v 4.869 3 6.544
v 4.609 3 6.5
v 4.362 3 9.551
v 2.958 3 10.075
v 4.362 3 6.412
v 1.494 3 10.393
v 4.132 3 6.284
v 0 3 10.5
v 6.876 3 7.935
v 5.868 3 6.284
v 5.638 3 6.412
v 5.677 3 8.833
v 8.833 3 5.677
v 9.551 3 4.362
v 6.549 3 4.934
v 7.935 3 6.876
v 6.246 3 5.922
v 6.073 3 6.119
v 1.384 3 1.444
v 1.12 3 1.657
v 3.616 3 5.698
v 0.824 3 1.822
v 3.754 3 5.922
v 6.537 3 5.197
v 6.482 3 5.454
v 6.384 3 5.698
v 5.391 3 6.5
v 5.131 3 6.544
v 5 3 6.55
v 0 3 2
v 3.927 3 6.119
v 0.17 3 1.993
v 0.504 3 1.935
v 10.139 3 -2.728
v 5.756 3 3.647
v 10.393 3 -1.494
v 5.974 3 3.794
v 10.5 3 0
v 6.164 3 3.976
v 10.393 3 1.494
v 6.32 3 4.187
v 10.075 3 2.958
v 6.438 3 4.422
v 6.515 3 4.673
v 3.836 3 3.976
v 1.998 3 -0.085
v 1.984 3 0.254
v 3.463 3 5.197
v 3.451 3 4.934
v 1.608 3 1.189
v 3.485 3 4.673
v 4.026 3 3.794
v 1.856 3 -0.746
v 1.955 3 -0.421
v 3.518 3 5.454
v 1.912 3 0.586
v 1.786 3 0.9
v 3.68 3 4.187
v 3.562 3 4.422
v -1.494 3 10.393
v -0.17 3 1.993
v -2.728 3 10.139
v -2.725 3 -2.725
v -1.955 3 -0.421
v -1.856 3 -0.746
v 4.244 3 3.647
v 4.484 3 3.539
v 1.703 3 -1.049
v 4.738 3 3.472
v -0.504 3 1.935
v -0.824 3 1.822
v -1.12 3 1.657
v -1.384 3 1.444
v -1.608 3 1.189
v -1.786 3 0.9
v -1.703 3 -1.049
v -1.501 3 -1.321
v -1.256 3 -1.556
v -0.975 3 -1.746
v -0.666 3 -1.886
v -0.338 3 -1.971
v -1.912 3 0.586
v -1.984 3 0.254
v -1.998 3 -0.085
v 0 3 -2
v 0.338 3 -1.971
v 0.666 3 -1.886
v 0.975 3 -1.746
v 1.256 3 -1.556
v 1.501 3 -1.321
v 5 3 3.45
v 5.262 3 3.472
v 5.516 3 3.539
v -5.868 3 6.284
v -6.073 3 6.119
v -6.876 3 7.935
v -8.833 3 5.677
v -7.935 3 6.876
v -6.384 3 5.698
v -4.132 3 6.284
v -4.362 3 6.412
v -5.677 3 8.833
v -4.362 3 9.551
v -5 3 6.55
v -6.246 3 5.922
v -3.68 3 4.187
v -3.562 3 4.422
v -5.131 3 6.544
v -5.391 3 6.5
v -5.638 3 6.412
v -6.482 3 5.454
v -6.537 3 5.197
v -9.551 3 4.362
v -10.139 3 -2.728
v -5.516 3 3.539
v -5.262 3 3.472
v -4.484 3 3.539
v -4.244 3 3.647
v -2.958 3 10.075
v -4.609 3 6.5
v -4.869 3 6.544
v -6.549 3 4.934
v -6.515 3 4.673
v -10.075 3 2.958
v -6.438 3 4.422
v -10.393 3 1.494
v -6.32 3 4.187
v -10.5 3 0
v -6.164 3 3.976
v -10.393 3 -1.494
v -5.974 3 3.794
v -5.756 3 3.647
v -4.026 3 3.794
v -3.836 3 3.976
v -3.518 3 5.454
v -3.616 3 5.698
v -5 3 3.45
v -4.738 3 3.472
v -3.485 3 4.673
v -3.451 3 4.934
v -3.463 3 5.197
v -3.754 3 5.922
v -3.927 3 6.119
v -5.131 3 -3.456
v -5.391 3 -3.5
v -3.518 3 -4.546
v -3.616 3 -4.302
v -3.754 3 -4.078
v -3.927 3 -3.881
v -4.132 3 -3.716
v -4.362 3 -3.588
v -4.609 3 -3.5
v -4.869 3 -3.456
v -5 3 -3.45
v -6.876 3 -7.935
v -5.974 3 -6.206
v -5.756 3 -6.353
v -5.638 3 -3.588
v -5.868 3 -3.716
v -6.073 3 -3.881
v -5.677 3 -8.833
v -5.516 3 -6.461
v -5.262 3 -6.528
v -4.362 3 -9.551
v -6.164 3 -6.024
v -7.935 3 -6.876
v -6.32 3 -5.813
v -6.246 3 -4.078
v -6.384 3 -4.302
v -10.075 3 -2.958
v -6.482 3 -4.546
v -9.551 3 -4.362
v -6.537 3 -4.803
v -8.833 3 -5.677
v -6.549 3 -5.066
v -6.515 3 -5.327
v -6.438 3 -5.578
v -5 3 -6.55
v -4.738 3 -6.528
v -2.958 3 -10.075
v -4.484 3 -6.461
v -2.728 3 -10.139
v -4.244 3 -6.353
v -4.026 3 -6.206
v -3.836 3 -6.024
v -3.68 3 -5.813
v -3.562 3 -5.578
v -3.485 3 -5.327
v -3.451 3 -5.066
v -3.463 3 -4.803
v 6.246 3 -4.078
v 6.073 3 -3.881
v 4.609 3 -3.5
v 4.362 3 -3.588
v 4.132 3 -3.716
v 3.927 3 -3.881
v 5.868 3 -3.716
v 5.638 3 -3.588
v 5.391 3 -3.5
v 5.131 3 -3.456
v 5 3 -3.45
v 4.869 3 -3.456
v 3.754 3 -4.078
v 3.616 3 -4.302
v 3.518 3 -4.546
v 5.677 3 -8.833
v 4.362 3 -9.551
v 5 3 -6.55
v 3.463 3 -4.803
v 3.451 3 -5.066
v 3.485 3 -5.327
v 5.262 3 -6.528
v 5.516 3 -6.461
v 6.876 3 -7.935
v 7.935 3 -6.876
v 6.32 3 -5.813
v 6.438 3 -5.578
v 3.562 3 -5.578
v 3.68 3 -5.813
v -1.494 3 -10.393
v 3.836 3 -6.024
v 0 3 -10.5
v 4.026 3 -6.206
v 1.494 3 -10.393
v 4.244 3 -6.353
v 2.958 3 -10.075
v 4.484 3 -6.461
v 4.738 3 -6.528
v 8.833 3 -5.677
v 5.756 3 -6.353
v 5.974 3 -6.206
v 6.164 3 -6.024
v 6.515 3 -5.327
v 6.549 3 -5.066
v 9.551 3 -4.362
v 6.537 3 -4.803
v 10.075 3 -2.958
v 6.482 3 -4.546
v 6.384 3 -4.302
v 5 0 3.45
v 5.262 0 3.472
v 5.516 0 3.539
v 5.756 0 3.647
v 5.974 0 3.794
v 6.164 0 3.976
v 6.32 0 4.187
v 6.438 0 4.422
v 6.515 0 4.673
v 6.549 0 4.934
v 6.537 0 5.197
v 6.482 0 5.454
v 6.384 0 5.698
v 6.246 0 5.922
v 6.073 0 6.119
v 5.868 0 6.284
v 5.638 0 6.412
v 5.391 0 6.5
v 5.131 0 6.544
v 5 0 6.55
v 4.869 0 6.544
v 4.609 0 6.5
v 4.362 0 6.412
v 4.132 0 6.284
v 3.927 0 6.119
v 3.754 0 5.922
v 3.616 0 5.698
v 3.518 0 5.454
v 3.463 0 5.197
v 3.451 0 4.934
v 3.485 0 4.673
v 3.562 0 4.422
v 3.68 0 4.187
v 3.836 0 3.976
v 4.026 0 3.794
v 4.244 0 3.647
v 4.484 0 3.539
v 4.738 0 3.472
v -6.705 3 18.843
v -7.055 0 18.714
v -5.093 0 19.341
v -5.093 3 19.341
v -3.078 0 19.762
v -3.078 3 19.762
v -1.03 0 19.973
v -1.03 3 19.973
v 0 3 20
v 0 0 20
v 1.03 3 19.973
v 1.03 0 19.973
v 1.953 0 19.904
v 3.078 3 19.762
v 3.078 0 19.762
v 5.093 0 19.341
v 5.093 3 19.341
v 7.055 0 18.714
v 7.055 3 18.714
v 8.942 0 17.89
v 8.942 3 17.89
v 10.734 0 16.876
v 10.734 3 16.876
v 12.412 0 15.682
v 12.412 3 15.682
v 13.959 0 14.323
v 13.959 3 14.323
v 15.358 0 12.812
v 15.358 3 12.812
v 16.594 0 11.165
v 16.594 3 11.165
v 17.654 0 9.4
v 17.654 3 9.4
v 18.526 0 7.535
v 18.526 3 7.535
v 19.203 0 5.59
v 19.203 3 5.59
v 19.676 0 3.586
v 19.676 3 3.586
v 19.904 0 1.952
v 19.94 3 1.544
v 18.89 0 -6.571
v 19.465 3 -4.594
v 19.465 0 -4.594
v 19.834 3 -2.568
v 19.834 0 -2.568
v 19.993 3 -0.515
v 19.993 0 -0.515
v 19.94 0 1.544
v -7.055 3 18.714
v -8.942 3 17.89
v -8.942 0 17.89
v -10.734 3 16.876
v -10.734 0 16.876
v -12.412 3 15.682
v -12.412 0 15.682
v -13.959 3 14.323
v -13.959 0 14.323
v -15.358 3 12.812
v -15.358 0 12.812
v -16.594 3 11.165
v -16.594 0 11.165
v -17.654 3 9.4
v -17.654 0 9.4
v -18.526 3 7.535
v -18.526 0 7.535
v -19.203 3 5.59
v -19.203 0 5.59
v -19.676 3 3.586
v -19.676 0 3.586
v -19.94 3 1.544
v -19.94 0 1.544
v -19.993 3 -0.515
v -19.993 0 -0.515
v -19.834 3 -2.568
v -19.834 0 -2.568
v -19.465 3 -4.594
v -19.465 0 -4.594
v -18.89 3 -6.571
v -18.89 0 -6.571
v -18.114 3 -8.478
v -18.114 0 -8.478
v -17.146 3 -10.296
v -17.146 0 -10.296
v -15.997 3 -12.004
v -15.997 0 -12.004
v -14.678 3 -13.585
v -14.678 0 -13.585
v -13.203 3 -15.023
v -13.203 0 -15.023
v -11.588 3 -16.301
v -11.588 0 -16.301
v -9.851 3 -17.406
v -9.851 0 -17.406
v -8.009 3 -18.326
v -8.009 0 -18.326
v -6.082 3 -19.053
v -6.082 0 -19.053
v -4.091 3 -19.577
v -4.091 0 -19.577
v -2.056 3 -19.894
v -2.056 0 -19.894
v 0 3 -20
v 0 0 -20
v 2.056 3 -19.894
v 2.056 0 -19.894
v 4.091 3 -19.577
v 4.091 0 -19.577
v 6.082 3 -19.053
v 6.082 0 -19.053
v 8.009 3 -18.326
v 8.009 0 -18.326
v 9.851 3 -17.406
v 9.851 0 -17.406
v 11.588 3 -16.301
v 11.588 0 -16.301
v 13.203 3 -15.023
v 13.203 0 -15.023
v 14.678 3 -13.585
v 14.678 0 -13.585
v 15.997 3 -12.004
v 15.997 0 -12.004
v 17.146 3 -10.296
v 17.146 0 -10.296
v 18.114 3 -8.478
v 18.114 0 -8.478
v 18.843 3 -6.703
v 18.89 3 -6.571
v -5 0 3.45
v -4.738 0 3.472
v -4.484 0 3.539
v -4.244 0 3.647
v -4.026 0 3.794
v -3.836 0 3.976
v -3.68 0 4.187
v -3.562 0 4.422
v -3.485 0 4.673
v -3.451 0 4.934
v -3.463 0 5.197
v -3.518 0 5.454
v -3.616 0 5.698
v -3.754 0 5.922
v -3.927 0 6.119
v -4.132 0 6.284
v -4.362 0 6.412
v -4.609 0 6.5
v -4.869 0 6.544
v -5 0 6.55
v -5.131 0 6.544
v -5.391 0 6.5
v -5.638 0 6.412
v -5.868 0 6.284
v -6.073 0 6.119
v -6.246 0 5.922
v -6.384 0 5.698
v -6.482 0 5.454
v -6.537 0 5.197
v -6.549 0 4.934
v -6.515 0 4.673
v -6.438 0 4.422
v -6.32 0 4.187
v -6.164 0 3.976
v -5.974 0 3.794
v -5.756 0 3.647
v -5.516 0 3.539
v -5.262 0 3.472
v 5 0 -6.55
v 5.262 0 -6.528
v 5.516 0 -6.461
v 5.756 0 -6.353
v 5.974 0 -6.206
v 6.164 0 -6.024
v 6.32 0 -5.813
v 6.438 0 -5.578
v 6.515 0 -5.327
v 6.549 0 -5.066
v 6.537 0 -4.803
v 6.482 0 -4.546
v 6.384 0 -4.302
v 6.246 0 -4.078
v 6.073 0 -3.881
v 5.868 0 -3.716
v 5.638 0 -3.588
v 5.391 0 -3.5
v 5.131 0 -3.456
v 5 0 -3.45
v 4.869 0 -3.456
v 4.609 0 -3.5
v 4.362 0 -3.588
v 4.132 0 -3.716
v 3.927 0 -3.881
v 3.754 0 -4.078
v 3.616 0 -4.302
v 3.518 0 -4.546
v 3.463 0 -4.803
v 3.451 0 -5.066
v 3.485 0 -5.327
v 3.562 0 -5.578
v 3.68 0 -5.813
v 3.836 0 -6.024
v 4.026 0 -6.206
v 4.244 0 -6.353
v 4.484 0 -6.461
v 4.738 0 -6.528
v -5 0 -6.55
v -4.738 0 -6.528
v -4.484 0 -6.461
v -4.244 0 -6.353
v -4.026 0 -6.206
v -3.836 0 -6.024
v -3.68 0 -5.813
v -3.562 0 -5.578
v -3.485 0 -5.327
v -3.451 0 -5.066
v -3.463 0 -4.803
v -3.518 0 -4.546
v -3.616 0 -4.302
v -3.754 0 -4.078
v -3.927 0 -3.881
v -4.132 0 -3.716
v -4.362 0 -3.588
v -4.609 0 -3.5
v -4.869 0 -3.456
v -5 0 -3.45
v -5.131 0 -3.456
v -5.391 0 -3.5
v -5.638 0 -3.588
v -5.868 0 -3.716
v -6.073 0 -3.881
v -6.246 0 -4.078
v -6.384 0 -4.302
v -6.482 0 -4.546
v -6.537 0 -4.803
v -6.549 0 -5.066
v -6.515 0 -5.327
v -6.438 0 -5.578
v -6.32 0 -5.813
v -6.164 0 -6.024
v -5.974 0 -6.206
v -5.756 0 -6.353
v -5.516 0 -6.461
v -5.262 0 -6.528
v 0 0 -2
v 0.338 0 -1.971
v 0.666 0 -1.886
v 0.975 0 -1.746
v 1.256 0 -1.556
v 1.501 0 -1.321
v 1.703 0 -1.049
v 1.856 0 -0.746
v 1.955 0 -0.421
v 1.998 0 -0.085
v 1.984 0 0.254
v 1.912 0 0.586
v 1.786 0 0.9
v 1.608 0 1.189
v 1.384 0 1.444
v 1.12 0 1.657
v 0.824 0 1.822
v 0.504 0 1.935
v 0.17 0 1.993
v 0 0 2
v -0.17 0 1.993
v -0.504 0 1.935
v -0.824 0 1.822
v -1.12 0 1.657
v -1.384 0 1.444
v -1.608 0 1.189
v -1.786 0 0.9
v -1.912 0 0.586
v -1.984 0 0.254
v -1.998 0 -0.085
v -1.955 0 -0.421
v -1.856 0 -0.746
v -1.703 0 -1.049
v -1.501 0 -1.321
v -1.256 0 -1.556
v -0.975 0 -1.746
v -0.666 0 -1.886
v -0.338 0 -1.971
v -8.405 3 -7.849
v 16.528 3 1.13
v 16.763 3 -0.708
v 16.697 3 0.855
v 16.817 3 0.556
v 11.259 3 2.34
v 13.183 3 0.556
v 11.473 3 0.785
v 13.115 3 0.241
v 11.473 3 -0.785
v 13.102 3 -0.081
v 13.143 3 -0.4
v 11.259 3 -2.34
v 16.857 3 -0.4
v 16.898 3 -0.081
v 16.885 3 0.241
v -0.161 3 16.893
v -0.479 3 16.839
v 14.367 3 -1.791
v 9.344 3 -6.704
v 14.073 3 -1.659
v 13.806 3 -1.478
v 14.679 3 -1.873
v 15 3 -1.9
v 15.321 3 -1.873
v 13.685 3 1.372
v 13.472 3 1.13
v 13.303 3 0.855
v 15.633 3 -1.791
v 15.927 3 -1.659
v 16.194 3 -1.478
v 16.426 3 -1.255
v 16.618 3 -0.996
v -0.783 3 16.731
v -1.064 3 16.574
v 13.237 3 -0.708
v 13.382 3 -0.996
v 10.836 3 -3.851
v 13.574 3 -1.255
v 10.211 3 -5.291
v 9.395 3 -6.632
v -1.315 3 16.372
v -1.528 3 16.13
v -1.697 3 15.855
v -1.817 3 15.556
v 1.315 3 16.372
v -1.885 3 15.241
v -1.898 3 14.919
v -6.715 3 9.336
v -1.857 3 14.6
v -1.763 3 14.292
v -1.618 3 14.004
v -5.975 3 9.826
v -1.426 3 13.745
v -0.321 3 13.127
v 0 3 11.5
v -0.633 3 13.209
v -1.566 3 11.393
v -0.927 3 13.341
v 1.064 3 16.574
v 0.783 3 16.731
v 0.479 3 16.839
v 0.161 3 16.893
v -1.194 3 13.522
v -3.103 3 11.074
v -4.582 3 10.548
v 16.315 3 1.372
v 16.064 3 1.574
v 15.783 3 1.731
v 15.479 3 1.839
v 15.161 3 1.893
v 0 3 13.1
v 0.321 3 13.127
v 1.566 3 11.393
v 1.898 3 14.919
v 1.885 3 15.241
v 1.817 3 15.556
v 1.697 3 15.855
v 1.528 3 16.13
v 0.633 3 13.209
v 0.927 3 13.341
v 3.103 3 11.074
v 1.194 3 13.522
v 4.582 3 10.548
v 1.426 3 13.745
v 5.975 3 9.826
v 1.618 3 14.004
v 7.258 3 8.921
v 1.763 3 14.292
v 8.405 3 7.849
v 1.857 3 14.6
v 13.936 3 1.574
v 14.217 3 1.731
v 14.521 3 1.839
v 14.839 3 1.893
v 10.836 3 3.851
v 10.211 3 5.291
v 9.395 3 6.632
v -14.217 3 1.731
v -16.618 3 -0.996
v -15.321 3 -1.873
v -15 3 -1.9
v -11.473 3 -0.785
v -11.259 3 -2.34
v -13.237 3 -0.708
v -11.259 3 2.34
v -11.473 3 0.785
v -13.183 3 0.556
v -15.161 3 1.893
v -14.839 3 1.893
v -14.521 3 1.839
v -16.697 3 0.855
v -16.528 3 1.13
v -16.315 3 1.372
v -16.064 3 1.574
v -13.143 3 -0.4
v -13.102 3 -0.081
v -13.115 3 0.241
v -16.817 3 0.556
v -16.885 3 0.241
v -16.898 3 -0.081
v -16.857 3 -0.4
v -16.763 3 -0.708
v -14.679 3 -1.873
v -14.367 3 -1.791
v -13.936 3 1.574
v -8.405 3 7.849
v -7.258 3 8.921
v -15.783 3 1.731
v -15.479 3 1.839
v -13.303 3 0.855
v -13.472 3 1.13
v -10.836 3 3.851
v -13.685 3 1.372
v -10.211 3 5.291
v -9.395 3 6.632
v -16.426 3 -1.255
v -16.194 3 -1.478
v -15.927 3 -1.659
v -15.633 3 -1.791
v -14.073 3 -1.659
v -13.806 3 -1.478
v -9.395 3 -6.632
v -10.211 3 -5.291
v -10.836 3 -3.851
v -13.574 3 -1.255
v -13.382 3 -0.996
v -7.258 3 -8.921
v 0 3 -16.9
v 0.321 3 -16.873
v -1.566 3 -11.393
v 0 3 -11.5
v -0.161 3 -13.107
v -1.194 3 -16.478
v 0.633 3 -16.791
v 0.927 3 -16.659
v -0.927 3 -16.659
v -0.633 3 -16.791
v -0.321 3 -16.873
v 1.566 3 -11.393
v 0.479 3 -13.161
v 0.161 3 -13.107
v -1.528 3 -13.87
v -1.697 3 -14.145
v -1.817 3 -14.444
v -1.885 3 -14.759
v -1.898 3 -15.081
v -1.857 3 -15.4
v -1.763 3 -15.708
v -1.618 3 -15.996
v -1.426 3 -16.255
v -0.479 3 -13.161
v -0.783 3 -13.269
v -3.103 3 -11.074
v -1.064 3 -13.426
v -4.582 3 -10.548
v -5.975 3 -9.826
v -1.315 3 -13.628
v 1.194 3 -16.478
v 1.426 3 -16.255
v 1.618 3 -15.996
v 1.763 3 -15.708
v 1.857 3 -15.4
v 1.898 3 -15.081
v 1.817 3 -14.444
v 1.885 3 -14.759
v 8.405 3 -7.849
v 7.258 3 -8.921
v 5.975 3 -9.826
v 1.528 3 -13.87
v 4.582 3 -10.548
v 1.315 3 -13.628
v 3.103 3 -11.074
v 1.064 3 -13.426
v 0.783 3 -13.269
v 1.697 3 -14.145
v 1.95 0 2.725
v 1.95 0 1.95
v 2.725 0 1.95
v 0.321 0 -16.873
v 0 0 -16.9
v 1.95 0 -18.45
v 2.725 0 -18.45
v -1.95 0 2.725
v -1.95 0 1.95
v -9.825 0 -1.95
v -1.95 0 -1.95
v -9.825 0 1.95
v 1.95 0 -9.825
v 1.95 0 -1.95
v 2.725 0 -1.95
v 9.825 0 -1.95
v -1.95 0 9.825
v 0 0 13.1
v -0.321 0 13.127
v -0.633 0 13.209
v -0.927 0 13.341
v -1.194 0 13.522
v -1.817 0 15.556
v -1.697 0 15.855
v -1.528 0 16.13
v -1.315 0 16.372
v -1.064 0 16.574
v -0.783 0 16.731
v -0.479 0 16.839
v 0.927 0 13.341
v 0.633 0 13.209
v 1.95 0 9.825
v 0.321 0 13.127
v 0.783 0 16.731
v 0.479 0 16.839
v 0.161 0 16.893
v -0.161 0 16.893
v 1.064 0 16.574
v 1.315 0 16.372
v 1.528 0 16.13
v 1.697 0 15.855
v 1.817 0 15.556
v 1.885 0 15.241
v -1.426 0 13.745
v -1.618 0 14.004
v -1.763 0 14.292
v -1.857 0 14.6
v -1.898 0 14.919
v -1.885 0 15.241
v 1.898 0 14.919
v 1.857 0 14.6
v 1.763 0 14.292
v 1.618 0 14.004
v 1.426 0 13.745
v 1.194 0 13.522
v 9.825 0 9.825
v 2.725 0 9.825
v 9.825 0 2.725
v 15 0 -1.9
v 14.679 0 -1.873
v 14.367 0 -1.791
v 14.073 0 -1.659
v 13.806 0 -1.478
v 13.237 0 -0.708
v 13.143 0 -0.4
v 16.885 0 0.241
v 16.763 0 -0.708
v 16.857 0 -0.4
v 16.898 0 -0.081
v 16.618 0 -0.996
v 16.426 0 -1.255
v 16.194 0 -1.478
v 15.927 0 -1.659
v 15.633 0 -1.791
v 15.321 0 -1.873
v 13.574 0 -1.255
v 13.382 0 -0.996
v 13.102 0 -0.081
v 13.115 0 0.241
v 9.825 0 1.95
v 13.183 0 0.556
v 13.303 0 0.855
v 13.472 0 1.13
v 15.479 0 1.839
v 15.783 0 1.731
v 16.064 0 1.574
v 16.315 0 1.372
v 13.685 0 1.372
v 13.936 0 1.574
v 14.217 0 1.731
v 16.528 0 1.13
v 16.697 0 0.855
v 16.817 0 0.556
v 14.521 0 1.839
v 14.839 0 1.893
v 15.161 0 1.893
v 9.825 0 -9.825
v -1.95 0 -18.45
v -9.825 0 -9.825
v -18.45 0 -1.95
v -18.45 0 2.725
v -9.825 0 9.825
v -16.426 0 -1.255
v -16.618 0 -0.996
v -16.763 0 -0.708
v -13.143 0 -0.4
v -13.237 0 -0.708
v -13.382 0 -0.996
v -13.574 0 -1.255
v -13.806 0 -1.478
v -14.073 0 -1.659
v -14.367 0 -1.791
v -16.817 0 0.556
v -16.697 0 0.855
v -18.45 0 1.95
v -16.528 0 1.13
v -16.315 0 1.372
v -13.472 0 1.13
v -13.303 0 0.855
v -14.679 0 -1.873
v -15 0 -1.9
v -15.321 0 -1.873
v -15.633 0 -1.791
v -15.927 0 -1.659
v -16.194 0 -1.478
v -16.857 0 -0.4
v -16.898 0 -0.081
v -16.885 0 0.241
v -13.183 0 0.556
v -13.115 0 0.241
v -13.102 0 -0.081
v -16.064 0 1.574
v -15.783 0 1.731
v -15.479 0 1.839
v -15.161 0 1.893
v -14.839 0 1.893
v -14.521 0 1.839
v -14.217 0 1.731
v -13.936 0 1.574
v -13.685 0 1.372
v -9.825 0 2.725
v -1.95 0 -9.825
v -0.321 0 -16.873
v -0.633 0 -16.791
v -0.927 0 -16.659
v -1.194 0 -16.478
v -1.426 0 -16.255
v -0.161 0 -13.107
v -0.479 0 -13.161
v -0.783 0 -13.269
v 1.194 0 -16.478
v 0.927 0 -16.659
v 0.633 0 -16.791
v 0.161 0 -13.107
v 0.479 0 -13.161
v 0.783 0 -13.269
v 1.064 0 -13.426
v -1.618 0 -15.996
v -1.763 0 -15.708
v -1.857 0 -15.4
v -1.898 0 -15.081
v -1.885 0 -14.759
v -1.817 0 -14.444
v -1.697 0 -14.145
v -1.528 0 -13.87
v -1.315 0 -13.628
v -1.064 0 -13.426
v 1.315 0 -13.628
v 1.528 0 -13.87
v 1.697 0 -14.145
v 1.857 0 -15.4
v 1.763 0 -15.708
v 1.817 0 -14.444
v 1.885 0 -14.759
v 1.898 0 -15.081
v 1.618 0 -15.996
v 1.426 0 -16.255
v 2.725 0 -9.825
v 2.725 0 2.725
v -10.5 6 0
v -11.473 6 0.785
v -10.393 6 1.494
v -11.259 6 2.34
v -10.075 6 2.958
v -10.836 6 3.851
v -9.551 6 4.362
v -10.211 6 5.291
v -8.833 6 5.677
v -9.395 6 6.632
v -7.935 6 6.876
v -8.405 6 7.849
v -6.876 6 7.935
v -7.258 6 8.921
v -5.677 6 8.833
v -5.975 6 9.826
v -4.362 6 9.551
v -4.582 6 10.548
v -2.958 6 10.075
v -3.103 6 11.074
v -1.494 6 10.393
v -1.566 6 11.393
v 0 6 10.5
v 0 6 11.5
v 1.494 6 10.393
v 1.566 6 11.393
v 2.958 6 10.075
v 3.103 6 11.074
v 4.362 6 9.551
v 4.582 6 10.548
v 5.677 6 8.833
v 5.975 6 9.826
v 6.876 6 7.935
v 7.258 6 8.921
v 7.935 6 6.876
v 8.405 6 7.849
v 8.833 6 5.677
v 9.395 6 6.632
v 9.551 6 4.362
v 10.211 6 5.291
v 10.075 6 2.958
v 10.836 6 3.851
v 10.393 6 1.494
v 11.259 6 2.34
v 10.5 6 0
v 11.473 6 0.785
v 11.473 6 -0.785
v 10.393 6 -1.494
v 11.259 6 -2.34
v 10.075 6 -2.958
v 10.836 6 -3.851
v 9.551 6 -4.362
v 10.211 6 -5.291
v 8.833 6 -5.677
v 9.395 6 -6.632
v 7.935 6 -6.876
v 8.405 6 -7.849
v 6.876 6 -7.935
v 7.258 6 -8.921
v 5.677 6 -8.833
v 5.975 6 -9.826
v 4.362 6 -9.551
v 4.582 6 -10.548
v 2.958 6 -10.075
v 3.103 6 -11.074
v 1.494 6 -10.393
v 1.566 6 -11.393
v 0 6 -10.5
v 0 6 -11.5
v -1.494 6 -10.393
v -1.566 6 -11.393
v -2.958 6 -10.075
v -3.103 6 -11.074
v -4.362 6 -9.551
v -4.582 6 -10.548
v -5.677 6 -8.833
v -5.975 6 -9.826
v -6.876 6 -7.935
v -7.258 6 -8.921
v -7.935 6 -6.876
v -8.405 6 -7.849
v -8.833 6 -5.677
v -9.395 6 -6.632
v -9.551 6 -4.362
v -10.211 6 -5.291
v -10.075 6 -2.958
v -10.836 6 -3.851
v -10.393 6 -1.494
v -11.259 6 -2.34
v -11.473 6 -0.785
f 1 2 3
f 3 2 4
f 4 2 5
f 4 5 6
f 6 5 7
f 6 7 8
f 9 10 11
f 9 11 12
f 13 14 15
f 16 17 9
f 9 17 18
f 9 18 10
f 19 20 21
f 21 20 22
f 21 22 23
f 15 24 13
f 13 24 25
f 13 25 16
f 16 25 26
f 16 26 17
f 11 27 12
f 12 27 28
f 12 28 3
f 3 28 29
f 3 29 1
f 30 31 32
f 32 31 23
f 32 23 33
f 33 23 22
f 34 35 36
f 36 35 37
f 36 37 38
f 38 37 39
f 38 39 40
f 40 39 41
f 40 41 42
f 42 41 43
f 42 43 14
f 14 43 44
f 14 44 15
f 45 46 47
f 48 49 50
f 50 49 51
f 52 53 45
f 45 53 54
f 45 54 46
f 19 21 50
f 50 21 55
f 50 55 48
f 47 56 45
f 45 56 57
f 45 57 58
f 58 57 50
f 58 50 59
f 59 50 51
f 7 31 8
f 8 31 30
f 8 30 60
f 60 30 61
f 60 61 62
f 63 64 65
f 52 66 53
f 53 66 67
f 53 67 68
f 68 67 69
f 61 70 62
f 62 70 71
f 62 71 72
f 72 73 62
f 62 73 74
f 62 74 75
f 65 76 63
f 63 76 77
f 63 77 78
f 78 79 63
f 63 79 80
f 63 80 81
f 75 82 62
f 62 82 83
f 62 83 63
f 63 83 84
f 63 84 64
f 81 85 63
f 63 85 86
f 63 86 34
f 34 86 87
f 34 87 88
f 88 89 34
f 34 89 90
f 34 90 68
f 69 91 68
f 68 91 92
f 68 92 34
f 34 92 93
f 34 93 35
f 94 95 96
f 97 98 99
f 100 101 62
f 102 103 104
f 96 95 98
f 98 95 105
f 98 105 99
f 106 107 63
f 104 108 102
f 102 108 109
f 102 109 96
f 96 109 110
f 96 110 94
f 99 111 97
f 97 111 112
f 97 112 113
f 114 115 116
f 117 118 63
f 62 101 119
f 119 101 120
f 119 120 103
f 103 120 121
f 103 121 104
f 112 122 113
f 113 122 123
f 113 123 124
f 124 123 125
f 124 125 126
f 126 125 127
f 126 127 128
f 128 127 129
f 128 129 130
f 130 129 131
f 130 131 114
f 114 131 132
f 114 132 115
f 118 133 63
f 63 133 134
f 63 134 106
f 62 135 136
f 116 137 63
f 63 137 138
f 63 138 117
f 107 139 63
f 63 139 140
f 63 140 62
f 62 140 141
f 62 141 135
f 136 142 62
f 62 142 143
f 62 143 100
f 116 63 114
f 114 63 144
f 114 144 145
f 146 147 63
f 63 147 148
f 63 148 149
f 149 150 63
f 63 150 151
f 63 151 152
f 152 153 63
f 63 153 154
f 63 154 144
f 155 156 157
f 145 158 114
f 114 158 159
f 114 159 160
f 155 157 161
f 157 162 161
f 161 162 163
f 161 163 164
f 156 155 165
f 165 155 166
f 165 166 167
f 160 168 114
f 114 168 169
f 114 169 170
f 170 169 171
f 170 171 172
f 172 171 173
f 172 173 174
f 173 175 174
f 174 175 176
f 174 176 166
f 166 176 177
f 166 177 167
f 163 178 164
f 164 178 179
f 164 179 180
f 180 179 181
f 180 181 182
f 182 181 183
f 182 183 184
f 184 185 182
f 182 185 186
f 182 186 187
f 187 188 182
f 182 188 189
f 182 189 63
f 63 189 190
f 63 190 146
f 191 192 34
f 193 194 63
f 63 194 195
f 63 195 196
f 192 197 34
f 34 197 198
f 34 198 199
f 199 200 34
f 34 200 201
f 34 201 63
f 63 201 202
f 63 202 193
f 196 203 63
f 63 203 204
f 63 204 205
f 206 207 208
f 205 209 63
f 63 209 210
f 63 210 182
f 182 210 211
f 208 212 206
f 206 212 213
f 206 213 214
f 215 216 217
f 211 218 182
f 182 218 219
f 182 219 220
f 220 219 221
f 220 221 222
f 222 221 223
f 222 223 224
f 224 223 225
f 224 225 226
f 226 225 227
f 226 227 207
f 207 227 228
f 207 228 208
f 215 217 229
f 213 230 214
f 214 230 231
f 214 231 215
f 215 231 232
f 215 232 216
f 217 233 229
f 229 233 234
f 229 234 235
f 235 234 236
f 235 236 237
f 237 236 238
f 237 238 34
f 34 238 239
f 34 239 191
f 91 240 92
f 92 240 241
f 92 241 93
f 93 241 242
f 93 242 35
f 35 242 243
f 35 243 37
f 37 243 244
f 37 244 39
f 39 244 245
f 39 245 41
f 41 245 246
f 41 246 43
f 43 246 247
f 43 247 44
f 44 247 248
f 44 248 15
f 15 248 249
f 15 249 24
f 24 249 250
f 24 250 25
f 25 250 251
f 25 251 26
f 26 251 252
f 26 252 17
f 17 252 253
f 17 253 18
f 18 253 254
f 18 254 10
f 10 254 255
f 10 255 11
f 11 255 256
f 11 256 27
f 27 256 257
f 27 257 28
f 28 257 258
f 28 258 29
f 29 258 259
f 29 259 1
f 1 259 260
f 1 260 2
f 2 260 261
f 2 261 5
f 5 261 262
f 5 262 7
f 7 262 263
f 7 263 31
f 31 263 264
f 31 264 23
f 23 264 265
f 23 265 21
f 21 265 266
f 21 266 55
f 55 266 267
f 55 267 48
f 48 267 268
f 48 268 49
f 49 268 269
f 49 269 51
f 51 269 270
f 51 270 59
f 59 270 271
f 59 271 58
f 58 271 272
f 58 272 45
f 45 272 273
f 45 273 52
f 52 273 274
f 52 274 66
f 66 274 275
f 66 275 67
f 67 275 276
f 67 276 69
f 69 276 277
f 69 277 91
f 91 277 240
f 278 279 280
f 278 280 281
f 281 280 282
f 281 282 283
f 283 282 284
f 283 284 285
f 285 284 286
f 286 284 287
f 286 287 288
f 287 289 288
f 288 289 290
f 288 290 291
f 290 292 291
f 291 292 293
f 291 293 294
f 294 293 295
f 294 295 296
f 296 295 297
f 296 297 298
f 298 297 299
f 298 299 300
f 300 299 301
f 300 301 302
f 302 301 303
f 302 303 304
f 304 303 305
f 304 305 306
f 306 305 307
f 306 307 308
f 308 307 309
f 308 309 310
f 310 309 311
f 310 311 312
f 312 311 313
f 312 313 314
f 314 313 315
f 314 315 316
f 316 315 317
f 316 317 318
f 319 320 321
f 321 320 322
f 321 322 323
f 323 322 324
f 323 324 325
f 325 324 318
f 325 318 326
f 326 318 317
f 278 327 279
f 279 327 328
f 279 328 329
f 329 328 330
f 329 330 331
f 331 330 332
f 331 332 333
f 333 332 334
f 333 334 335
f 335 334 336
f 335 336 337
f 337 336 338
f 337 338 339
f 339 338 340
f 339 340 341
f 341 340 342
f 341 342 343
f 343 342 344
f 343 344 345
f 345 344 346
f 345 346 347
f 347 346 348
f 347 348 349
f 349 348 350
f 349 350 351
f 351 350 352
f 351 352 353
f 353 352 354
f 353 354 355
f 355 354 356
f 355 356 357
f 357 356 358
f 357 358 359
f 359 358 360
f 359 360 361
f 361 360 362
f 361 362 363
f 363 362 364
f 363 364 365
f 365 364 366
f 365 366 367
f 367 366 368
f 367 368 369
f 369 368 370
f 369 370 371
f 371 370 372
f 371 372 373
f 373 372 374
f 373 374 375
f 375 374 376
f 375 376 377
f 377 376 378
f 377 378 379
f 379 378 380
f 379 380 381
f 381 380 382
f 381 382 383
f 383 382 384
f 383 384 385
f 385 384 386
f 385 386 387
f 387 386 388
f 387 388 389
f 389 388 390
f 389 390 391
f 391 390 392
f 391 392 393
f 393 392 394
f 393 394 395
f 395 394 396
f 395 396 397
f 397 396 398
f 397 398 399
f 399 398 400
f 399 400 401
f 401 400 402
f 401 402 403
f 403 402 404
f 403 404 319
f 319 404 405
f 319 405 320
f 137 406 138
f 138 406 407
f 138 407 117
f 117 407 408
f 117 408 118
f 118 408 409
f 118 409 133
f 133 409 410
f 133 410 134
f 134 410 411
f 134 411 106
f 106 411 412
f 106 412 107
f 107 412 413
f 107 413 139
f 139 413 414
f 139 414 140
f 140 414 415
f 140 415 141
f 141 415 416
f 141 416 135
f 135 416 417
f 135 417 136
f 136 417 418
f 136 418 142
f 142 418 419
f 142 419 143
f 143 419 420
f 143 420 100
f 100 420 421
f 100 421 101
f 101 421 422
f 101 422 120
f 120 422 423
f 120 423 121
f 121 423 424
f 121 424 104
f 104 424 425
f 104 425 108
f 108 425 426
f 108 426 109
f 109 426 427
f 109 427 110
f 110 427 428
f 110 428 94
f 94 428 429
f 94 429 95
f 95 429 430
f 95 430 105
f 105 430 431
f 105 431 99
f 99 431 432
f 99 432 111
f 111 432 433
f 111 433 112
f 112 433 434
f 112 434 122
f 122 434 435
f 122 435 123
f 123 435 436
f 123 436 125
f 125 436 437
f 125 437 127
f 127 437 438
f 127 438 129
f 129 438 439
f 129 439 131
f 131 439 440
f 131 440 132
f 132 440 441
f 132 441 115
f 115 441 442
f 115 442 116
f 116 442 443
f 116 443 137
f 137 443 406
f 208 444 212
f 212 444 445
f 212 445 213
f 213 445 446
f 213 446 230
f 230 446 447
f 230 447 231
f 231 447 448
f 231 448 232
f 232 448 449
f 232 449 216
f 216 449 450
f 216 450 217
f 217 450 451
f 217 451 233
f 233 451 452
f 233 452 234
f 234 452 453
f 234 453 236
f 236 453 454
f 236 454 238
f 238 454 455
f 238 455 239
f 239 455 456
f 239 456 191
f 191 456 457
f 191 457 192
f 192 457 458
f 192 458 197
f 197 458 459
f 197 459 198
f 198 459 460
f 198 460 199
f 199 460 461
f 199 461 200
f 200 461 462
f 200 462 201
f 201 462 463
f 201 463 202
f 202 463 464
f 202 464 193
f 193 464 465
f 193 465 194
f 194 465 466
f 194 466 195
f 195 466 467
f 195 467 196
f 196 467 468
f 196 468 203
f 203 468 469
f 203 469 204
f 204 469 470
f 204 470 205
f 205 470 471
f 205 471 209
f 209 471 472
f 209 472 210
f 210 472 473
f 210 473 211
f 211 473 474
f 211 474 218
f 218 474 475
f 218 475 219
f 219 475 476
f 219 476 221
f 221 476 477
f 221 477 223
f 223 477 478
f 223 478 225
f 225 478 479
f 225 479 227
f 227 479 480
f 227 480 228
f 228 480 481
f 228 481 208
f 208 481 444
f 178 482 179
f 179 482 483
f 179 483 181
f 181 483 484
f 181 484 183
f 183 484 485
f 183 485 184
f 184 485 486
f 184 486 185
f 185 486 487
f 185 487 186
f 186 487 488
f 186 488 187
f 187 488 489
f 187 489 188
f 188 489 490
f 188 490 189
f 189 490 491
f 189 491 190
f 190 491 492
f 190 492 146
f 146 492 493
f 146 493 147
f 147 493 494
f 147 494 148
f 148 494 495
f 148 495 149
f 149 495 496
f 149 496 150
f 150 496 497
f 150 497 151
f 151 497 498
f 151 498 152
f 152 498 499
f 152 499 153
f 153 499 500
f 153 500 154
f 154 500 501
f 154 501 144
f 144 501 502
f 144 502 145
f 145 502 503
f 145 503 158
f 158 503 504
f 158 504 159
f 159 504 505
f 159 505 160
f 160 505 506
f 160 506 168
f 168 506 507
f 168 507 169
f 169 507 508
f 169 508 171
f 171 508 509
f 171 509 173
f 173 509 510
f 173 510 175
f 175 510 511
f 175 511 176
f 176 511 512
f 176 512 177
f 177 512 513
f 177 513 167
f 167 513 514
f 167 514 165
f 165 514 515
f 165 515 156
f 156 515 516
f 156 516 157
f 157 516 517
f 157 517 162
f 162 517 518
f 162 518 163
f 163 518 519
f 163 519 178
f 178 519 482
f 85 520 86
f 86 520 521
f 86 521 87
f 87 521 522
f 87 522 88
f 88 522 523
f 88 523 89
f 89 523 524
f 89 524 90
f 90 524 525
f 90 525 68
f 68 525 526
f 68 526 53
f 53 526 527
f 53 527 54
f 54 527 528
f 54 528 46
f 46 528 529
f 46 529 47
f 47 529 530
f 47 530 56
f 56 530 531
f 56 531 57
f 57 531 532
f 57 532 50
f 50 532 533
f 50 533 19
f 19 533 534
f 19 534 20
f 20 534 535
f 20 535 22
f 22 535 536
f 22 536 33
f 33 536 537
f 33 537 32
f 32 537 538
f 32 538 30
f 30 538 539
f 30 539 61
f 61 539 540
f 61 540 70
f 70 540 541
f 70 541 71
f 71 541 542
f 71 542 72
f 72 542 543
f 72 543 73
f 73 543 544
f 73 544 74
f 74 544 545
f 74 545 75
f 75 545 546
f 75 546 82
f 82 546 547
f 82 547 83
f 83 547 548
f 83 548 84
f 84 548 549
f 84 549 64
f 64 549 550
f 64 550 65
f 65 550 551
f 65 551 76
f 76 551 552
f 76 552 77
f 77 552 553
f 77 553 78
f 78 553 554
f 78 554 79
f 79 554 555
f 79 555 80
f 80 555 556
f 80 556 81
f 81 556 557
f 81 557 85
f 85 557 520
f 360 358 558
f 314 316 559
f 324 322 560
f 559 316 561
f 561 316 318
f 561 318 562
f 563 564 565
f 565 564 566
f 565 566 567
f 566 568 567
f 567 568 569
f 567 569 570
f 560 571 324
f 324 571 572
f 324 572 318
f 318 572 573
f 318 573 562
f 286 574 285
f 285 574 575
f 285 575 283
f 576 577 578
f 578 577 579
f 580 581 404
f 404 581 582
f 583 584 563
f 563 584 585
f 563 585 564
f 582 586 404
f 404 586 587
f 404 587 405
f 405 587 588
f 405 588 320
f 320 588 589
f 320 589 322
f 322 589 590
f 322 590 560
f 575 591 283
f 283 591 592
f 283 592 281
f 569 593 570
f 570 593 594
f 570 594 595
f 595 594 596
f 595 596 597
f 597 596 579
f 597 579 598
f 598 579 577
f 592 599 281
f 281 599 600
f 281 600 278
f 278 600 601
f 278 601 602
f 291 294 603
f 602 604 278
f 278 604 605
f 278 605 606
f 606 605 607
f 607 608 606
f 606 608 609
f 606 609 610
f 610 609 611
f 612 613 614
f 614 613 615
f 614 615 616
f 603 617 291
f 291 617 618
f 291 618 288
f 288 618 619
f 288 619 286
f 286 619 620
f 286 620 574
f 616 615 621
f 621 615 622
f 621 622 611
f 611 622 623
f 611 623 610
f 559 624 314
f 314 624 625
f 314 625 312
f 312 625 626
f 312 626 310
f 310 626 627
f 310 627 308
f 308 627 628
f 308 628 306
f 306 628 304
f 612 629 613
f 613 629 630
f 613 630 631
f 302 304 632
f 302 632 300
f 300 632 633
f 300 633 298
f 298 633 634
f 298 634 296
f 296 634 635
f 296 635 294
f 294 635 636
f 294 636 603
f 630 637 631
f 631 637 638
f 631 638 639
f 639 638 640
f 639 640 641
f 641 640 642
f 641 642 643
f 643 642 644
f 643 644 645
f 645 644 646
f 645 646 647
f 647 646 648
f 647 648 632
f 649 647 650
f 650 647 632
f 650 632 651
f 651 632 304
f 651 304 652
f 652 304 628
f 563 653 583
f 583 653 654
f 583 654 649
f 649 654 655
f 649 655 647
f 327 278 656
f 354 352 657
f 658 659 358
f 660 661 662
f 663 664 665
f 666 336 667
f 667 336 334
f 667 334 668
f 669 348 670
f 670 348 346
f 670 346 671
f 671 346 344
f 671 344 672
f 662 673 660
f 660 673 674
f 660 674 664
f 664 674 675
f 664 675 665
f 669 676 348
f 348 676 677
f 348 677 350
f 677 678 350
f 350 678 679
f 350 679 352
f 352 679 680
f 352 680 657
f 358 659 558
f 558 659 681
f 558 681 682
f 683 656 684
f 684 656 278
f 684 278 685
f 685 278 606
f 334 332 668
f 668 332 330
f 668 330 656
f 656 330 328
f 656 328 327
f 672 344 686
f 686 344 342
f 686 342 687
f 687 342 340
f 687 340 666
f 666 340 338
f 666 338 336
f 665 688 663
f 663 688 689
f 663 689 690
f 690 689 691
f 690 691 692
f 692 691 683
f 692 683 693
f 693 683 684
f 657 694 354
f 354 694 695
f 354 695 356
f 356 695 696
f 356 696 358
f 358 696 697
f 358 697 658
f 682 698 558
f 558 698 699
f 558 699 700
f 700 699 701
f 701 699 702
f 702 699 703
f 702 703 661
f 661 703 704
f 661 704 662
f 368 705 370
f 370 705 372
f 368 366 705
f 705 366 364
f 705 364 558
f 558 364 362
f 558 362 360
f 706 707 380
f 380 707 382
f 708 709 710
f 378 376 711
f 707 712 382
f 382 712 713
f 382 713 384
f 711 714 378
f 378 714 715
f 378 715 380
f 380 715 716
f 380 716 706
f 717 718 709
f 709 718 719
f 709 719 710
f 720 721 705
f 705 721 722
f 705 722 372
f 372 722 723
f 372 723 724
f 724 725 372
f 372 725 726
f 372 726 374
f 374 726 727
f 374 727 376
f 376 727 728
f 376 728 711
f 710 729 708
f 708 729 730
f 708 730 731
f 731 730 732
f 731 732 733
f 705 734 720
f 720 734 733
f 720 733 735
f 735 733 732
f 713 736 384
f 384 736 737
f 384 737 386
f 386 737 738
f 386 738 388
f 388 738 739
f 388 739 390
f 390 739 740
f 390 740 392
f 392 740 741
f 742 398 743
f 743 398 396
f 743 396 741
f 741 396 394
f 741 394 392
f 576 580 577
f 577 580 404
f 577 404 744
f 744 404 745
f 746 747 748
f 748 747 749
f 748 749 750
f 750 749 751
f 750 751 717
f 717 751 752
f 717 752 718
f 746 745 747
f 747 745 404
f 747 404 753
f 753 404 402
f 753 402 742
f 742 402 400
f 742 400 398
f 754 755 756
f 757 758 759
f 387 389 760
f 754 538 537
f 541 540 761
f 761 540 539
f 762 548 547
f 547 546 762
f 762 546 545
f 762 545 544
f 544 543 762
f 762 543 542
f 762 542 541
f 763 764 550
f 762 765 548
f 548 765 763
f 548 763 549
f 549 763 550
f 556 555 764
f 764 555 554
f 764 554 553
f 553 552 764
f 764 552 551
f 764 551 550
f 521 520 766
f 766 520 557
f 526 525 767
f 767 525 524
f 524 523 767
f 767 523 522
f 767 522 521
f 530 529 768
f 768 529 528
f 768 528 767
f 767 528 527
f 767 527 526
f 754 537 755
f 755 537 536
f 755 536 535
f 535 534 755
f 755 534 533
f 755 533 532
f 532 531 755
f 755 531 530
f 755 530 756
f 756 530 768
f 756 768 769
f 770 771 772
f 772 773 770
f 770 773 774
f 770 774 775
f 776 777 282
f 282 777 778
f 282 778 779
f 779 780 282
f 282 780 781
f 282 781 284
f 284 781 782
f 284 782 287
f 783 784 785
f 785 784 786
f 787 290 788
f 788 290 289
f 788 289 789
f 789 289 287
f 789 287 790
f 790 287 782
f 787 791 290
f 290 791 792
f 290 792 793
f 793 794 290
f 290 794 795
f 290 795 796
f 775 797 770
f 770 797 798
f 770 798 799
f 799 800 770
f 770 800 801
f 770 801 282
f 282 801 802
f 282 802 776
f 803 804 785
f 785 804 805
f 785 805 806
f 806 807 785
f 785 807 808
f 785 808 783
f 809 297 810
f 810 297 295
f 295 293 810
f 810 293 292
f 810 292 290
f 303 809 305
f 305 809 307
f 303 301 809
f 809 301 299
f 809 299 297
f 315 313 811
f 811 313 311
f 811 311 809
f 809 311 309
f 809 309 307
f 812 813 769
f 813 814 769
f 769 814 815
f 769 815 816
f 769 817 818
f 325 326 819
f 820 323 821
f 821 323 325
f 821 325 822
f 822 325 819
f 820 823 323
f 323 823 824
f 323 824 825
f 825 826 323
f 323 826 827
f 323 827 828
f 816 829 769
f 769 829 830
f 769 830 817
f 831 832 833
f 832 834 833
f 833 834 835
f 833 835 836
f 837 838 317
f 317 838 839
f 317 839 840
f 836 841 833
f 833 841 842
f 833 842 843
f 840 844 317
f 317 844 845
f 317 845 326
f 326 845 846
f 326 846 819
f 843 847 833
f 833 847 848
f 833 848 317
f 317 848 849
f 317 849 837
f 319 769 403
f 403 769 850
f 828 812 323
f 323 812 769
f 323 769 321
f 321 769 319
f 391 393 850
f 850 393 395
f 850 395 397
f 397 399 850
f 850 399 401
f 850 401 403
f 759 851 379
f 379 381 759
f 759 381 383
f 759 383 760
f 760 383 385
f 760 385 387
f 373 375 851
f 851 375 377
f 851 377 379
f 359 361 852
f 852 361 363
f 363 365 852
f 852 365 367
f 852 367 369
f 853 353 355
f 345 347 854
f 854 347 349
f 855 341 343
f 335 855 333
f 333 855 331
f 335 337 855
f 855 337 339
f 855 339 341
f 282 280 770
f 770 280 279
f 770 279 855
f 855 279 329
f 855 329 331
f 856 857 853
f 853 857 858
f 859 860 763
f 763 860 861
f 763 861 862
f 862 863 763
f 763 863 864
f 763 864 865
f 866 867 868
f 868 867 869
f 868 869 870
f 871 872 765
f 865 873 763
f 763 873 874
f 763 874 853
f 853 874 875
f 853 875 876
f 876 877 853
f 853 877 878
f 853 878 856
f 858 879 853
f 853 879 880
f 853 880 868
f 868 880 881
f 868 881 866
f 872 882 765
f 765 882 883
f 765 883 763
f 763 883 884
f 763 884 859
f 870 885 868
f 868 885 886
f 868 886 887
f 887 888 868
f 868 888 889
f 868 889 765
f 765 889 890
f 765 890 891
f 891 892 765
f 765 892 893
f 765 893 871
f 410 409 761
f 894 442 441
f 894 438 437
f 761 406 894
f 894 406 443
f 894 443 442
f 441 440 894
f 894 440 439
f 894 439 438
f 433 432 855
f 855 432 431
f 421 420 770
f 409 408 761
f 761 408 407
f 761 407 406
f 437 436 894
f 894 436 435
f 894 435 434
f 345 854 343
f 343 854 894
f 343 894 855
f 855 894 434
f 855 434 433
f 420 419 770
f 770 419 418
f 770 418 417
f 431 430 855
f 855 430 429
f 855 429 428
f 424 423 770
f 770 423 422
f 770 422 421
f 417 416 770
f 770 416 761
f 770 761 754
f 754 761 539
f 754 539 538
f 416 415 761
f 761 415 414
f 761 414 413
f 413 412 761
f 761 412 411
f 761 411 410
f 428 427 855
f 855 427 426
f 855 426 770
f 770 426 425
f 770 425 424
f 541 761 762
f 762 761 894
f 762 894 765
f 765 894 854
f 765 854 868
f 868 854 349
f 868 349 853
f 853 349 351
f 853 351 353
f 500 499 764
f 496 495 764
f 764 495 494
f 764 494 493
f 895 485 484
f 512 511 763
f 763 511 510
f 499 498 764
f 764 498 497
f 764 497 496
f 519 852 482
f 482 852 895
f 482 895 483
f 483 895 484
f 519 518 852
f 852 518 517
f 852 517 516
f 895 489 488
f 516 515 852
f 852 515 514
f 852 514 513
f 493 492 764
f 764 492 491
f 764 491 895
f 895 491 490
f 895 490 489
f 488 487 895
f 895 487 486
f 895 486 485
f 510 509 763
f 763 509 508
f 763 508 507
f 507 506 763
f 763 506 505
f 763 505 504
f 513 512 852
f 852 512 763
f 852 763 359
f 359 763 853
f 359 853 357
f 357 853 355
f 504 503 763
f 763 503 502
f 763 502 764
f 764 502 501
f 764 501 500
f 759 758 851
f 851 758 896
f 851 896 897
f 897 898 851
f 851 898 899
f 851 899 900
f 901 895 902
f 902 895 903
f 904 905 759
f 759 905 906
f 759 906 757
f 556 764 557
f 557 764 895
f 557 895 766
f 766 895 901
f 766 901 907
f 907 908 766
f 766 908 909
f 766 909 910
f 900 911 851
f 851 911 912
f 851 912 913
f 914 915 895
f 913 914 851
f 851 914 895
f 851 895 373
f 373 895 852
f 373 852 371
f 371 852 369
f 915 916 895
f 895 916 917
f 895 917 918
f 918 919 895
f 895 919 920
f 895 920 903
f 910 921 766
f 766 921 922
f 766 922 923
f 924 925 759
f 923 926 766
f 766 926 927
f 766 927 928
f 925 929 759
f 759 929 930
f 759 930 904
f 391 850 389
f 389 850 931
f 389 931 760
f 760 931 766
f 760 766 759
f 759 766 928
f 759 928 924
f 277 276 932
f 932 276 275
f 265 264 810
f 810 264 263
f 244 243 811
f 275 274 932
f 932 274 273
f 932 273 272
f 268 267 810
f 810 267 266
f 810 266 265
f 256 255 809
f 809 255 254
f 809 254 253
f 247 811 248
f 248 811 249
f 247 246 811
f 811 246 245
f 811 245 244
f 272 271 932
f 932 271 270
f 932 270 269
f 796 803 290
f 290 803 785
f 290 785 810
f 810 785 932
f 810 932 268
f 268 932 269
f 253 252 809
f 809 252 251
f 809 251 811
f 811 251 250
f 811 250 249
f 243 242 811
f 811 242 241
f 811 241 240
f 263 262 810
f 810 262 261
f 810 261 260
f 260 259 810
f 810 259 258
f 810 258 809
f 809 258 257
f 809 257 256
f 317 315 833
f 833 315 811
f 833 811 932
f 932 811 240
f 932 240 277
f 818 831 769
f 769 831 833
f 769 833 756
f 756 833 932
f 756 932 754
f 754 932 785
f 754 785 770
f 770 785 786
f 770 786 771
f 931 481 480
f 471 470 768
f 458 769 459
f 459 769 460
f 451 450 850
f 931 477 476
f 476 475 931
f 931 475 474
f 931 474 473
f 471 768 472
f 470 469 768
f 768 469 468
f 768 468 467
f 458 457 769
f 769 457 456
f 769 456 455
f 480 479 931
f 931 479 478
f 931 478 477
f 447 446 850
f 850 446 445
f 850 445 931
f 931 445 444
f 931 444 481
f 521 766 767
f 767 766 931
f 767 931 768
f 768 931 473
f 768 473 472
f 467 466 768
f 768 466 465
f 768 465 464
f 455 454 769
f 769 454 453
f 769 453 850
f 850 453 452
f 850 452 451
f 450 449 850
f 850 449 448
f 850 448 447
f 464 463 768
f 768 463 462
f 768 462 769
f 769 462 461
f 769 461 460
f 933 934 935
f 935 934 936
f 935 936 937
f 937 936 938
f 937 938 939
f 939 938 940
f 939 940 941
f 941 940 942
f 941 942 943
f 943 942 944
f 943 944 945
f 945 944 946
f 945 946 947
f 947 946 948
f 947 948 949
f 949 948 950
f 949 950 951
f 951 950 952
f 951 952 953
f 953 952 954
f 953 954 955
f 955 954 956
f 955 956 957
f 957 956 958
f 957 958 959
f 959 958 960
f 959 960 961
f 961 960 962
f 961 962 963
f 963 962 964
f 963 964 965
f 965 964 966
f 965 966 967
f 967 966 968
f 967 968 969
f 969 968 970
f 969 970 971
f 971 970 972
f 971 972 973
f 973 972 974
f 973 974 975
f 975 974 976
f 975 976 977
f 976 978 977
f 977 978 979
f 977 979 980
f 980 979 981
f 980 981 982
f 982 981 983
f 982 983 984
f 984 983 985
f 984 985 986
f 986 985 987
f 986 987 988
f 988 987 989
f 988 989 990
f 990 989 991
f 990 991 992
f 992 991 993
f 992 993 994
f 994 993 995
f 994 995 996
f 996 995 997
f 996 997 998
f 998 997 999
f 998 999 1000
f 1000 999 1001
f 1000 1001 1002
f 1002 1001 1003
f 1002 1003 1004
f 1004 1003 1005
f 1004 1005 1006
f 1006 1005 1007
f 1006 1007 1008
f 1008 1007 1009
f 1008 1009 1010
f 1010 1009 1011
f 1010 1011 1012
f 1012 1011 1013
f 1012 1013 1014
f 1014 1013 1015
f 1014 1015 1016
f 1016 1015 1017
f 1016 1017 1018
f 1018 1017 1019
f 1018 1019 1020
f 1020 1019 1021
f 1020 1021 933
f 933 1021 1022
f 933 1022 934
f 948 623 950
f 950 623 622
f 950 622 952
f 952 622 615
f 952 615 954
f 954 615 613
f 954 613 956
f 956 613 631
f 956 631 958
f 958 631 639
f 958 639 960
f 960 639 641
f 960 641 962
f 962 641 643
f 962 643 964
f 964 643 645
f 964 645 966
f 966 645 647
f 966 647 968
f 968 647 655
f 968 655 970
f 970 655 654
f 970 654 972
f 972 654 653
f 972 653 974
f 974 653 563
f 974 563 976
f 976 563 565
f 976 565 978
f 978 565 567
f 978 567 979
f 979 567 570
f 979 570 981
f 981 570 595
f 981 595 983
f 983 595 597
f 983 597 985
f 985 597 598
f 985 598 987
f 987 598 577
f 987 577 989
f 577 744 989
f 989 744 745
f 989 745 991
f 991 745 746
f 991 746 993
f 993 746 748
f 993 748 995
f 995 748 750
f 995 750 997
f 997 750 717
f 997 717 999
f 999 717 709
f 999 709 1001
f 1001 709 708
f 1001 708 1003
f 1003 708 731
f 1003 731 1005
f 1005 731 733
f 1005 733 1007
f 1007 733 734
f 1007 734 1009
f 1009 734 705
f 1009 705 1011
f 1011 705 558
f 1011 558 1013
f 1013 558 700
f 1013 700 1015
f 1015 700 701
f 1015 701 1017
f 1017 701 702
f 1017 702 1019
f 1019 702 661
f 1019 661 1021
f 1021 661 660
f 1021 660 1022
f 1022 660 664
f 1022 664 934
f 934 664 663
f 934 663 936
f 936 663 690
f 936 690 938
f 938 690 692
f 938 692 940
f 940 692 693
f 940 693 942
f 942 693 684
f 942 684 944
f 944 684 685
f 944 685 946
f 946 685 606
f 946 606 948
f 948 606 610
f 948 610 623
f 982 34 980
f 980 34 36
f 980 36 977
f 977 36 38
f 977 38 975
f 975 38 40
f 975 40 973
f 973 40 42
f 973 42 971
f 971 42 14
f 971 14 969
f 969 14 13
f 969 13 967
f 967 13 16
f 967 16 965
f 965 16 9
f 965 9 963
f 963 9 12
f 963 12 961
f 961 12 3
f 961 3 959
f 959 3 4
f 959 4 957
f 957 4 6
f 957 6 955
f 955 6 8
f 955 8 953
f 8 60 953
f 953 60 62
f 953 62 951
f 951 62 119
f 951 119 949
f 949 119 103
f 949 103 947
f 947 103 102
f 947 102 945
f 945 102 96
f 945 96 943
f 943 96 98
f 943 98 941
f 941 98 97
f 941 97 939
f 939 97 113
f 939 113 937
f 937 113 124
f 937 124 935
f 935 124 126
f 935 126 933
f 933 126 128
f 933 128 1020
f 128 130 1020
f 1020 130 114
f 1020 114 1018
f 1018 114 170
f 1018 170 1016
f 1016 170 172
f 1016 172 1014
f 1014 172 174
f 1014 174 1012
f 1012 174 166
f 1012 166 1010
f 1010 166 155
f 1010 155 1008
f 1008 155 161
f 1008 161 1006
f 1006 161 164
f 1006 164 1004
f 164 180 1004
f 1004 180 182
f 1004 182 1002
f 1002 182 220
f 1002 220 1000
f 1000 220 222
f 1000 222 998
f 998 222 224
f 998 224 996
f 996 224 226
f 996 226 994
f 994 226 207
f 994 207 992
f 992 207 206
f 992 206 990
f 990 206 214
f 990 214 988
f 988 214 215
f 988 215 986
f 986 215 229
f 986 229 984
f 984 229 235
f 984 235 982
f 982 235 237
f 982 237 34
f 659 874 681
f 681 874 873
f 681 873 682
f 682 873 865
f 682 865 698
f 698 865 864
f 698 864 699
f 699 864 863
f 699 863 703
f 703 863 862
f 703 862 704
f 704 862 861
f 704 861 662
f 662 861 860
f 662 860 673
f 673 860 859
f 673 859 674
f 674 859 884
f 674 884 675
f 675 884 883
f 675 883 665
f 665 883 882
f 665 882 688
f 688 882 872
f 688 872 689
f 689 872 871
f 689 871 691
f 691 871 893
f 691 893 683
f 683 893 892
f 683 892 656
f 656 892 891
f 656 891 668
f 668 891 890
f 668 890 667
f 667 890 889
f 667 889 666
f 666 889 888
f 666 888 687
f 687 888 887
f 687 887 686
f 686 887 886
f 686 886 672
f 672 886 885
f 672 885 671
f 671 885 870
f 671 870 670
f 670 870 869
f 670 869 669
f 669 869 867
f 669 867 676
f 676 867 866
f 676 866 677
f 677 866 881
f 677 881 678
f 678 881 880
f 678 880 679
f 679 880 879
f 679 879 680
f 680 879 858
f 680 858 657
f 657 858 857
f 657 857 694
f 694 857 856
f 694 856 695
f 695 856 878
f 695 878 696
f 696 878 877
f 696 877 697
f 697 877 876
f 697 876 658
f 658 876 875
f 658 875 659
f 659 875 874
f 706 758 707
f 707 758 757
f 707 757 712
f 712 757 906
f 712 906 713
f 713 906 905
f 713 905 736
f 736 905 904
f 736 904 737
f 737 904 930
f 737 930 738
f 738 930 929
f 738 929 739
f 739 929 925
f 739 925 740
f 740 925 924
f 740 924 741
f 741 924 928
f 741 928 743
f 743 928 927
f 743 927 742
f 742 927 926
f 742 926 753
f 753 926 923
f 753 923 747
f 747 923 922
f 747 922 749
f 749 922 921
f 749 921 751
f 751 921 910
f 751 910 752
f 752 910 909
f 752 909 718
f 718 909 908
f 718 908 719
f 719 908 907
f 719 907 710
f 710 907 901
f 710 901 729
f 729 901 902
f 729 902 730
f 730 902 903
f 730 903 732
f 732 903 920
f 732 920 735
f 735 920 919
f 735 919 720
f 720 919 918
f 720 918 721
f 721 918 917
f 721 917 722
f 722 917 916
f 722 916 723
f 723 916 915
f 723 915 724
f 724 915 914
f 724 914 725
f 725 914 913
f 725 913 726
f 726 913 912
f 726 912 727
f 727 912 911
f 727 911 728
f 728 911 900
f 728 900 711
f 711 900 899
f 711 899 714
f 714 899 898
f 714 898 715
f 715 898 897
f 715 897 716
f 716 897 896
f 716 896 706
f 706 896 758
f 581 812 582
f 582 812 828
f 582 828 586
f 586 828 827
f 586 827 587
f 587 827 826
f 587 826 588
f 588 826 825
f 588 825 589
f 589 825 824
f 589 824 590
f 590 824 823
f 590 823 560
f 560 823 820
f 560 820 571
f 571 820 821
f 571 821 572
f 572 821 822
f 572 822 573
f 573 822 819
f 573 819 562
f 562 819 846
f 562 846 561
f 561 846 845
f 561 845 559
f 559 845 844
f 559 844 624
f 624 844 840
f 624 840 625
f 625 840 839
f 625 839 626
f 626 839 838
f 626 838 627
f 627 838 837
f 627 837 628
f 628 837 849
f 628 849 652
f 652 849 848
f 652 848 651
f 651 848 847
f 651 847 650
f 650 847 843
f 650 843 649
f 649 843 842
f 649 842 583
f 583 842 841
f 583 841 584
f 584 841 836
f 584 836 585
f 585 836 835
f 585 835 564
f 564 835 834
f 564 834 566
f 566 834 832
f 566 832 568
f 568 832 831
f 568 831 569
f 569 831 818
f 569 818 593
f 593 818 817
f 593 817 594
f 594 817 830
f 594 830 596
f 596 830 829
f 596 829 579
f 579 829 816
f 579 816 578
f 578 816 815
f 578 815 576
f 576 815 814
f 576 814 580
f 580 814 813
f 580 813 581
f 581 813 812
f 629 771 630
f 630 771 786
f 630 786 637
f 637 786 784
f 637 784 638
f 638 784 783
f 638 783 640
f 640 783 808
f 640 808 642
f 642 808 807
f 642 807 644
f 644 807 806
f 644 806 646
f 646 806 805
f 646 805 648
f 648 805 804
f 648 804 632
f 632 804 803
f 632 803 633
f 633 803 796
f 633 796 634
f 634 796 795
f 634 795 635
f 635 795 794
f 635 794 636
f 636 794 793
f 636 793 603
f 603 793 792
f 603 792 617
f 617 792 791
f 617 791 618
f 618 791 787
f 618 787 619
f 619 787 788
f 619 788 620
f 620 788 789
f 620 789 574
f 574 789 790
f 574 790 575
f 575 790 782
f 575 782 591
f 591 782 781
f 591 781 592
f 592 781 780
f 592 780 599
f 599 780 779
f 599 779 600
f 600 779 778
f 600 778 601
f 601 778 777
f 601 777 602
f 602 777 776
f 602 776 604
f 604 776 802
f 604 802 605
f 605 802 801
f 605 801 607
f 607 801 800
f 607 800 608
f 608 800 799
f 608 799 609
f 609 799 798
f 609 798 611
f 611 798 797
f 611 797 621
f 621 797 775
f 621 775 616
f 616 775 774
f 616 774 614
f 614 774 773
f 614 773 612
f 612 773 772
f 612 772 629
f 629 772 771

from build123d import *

# Parameters (mm, degrees)
SKETCH_1_R          = 20
SKETCH_1_R_2        = 1.6
SKETCH_1_R_3        = 1.55
SKETCH_1_R_4        = 2
EXTRUDE_1_DEPTH     = 3
SKETCH_2_R          = 11.5
SKETCH_2_R_2        = 10.5
EXTRUDE_2_DEPTH     = 3
SKETCH_3_R          = 1.9
CUT_EXTRUDE_1_DEPTH = 3


with BuildPart() as part:
    # 草图1 → 凸台-拉伸1 (new body)
    with BuildSketch(Plane(origin=(0, 0, 0), x_dir=(1, 0, 0), z_dir=(0, 1, 0))):
        with Locations(Location((0, 0, 0), (0, 0, 270))):
            Circle(SKETCH_1_R)
        with Locations(Location((0, 15, 0), (0, 0, 270))):
            Circle(SKETCH_1_R_2, mode=Mode.SUBTRACT)
        with Locations(Location((15, 0, 0), (0, 0, 270))):
            Circle(SKETCH_1_R_2, mode=Mode.SUBTRACT)
        with Locations(Location((0, -15, 0), (0, 0, 270))):
            Circle(SKETCH_1_R_2, mode=Mode.SUBTRACT)
        with Locations(Location((-15, 0, 0), (0, 0, 270))):
            Circle(SKETCH_1_R_2, mode=Mode.SUBTRACT)
        with Locations(Location((-5, 5, 0), (0, 0, 270))):
            Circle(SKETCH_1_R_3, mode=Mode.SUBTRACT)
        with Locations(Location((5, 5, 0), (0, 0, 270))):
            Circle(SKETCH_1_R_3, mode=Mode.SUBTRACT)
        with Locations(Location((5, -5, 0), (0, 0, 270))):
            Circle(SKETCH_1_R_3, mode=Mode.SUBTRACT)
        with Locations(Location((-5, -5, 0), (0, 0, 270))):
            Circle(SKETCH_1_R_3, mode=Mode.SUBTRACT)
        with Locations(Location((0, 0, 0), (0, 0, 270))):
            Circle(SKETCH_1_R_4, mode=Mode.SUBTRACT)
    extrude(amount=EXTRUDE_1_DEPTH)

    # 草图2 → 凸台-拉伸2 (add)
    with BuildSketch(Plane(origin=(0, 3, 0), x_dir=(1, 0, 0), z_dir=(0, 1, 0))):
        with Locations(Location((0, 0, 0), (0, 0, 270))):
            Circle(SKETCH_2_R)
        with Locations(Location((0, 0, 0), (0, 0, 270))):
            Circle(SKETCH_2_R_2, mode=Mode.SUBTRACT)
    extrude(amount=EXTRUDE_2_DEPTH)

    # 草图3 → 切除-拉伸1 (cut)
    with BuildSketch(Plane.XZ):
        with Locations(Location((0, 15, 0), (0, 0, 270))):
            Circle(SKETCH_3_R)
        with Locations(Location((15, 0, 0), (0, 0, 270))):
            Circle(SKETCH_3_R)
        with Locations(Location((0, -15, 0), (0, 0, 270))):
            Circle(SKETCH_3_R)
        with Locations(Location((-15, 0, 0), (0, 0, 270))):
            Circle(SKETCH_3_R)
    extrude(amount=-CUT_EXTRUDE_1_DEPTH, mode=Mode.SUBTRACT)


solid = part.part
